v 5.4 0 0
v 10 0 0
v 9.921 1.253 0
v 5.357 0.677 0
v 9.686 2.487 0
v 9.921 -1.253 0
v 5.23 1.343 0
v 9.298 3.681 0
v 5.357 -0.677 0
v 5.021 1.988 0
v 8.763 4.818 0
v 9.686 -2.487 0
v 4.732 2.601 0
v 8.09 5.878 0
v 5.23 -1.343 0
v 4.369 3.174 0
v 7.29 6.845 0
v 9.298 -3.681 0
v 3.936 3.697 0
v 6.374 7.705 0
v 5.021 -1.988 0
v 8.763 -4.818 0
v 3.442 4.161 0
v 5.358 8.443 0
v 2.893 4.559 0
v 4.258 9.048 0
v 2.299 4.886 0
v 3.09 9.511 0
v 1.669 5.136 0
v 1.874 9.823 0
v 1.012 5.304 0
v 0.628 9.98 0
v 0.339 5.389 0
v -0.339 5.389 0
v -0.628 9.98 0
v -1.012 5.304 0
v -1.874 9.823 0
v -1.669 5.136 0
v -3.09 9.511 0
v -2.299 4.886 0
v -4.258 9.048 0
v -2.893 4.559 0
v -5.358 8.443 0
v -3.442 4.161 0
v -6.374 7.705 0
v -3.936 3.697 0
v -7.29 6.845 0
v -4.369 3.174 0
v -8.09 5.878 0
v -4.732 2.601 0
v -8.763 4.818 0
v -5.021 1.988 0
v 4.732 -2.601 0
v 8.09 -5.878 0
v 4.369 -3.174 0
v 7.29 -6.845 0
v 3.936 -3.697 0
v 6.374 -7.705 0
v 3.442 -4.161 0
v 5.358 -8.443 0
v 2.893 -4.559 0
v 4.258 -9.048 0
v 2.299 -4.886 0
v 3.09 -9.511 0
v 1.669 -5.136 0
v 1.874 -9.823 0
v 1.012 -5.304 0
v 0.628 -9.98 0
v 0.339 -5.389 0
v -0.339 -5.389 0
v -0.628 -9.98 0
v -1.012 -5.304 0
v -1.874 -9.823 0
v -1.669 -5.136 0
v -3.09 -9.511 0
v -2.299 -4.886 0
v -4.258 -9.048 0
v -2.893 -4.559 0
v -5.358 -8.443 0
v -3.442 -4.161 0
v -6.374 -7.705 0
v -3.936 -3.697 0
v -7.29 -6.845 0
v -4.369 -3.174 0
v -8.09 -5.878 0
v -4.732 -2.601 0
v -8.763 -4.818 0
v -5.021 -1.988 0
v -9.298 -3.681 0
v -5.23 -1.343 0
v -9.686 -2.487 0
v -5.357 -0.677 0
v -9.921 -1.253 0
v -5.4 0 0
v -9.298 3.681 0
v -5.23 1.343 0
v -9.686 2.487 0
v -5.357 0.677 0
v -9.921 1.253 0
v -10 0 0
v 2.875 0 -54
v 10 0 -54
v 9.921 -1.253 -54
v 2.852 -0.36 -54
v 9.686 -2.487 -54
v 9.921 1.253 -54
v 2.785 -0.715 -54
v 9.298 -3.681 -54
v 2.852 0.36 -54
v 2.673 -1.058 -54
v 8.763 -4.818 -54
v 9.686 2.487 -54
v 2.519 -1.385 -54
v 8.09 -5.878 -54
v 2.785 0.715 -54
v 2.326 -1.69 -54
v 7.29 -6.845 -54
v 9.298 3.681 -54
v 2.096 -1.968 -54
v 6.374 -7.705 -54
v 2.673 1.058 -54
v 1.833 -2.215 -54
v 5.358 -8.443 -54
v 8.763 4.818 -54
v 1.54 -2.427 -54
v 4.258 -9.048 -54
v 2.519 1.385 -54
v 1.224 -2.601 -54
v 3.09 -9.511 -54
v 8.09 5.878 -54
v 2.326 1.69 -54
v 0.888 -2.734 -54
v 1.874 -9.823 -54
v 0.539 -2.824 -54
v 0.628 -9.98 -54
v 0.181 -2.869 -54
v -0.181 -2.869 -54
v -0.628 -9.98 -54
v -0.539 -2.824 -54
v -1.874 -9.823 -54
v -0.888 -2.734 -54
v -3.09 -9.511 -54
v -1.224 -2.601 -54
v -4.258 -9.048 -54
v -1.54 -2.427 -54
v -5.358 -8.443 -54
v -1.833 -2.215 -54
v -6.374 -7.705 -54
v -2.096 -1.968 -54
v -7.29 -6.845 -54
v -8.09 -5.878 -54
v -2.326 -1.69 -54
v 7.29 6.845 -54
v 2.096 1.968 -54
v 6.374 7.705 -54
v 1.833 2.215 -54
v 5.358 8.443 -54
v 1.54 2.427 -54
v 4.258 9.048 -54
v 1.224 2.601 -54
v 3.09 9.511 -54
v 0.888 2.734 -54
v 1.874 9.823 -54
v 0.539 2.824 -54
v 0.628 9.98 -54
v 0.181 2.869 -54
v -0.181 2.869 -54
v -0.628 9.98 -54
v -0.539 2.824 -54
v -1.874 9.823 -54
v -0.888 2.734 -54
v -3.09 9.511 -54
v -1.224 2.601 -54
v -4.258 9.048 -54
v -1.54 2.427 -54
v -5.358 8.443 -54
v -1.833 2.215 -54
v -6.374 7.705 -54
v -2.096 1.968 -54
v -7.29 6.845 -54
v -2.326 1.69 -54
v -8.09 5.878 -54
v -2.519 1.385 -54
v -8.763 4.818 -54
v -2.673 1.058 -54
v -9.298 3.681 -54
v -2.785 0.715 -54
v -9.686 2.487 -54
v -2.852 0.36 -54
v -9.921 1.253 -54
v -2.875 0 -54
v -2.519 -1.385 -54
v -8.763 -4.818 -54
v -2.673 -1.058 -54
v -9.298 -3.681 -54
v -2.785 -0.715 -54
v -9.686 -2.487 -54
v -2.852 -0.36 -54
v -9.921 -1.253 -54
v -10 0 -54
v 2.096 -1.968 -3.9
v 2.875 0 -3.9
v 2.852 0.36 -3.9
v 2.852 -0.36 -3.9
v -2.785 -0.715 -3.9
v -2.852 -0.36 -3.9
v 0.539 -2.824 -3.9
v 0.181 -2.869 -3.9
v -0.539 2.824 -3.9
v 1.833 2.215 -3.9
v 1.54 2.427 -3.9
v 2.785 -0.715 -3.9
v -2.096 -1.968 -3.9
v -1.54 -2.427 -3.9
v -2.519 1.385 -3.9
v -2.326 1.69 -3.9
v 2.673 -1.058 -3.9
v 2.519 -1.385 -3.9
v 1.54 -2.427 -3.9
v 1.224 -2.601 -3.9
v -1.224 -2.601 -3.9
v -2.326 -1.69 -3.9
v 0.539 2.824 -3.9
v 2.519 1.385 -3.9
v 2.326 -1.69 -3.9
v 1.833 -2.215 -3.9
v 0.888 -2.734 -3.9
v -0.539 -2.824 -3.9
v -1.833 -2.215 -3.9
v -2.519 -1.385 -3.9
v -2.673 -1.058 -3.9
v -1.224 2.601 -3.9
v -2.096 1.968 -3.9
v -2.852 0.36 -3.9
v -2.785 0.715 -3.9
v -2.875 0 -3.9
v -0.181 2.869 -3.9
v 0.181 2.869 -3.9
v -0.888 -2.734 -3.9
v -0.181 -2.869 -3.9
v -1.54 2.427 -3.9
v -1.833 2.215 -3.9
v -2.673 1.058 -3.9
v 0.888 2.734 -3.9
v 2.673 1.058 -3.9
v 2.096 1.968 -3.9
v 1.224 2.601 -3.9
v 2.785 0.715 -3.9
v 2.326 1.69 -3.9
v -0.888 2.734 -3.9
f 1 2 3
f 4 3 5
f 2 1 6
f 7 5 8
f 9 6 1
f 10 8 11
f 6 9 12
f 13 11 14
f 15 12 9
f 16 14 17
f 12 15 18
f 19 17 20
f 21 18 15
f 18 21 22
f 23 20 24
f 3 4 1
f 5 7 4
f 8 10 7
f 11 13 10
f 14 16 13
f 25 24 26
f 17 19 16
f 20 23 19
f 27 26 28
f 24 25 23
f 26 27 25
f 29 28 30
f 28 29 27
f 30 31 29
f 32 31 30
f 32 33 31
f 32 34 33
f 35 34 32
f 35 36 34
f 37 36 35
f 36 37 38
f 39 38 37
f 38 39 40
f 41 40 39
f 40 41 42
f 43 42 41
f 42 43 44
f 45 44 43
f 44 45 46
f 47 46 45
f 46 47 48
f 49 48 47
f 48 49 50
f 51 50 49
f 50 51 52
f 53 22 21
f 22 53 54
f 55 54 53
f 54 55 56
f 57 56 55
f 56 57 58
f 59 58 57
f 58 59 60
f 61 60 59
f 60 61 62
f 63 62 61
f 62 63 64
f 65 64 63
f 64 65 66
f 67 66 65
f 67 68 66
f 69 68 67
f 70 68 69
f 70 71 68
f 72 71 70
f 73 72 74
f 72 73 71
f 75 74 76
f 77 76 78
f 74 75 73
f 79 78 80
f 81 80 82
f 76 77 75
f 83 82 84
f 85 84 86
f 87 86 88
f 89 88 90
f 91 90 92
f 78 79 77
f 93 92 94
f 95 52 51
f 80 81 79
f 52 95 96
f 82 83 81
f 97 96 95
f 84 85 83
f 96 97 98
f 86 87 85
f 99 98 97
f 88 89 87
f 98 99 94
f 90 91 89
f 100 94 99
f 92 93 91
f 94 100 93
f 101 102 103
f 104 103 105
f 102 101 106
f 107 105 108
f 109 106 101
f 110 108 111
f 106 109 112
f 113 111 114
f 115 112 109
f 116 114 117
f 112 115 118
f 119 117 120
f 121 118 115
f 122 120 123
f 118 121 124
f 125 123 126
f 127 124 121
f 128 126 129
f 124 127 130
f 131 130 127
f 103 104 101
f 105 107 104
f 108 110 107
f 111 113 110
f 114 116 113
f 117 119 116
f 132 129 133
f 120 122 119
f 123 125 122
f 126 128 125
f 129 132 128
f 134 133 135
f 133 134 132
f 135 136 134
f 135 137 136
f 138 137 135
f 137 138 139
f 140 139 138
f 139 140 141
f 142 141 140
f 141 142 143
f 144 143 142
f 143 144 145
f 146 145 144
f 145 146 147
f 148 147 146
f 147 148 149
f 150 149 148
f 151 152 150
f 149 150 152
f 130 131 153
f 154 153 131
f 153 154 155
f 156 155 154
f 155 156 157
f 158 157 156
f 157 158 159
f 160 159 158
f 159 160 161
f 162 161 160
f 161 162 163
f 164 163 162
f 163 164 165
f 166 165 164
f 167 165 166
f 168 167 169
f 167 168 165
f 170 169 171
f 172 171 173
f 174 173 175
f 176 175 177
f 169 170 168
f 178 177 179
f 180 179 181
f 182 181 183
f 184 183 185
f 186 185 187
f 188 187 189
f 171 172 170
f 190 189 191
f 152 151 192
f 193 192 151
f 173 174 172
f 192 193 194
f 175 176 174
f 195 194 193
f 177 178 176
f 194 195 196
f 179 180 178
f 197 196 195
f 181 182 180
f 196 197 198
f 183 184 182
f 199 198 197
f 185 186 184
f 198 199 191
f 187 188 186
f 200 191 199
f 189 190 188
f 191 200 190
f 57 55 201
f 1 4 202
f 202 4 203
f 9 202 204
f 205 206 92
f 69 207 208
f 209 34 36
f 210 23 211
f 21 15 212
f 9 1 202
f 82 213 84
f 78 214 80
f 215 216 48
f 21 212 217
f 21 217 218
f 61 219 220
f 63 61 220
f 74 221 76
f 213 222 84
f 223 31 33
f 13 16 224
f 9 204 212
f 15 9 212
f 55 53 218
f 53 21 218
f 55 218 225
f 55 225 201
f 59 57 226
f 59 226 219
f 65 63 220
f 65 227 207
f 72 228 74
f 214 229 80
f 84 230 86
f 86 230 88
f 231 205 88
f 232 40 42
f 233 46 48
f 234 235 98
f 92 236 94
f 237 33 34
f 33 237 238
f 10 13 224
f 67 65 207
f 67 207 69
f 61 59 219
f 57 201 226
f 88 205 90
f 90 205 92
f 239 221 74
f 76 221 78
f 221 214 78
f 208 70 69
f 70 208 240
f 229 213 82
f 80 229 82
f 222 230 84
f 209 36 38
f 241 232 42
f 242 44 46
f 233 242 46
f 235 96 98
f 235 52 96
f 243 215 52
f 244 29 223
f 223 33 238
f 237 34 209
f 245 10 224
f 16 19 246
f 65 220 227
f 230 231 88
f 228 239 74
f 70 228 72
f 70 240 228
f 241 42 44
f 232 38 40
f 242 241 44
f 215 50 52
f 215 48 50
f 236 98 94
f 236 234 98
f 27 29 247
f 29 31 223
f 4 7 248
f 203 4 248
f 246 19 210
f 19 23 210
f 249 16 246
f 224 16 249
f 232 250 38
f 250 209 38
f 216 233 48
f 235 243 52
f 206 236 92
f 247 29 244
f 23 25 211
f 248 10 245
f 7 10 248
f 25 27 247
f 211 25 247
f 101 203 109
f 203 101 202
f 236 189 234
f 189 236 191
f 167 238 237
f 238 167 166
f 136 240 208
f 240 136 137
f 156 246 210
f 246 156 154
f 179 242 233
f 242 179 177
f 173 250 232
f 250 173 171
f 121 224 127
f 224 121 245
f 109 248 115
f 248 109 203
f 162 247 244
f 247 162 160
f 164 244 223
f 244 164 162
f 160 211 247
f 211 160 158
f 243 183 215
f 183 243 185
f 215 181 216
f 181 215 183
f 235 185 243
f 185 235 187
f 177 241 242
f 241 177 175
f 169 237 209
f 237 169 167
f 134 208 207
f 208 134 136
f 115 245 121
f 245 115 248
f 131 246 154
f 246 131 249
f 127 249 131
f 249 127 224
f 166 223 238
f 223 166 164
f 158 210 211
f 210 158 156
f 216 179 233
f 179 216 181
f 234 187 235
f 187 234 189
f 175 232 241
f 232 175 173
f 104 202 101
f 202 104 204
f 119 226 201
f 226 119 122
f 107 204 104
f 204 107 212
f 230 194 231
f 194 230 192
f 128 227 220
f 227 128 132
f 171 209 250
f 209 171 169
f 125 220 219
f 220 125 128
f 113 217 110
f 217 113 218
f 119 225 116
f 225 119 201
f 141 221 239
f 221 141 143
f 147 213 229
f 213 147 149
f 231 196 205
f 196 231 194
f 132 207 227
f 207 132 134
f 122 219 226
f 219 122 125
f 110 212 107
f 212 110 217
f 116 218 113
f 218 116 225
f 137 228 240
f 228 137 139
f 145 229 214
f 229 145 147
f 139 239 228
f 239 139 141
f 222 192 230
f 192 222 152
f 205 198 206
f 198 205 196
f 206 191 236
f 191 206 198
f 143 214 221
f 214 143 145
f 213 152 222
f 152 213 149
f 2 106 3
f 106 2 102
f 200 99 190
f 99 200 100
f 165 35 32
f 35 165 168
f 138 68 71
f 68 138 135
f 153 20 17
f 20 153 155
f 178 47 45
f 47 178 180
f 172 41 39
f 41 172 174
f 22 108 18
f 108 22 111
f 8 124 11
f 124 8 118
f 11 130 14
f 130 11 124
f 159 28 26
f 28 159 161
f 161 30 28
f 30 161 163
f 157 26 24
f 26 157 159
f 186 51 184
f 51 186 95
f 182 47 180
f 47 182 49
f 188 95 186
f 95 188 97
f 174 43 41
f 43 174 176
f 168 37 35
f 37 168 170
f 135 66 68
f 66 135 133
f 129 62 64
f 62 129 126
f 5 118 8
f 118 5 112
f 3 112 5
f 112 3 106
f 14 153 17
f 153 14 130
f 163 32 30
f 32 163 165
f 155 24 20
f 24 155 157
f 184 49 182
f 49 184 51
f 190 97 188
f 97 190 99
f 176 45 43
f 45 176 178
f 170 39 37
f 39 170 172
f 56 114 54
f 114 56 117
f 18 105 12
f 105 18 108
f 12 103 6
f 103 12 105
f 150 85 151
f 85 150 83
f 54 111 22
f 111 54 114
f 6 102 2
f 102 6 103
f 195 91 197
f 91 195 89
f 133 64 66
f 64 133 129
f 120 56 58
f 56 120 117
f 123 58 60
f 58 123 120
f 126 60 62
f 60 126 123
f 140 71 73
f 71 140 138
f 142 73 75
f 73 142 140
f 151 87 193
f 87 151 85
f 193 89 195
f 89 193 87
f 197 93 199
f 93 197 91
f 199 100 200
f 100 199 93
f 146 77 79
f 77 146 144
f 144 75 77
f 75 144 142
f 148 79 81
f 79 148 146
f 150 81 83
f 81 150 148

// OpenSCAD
$fn = 50;


difference() {
	union() {
		translate(v = [0, 0, -54.0000000000]) {
			cylinder(h = 54, r = 10.0000000000);
		}
		cylinder(h = 0, r = 13.0000000000);
	}
	union() {
		translate(v = [0, 0, 0]) {
			rotate(a = [0, 0, 0]) {
				difference() {
					union() {
						#translate(v = [0, 0, -54.0000000000]) {
							cylinder(h = 54, r = 2.6000000000);
						}
						#translate(v = [0, 0, -3.9000000000]) {
							cylinder(h = 3.9000000000, r = 10.0000000000, r1 = 2.8750000000, r2 = 5.4000000000);
						}
						#translate(v = [0, 0, -54.0000000000]) {
							cylinder(h = 54, r = 2.8750000000);
						}
						#translate(v = [0, 0, -54.0000000000]) {
							cylinder(h = 54, r = 2.6000000000);
						}
					}
					union();
				}
			}
		}
	}
}
